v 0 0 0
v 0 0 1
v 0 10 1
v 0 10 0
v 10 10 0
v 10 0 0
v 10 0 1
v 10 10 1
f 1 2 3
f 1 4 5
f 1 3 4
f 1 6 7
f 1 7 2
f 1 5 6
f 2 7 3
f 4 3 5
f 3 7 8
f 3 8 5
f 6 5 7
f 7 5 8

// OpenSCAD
/* Warning, this is a very basic generator with a lot of approximation 
input data : [VQFN, LNC, 10x10x1.0mm, 72, , A, C04-25387A]
generated by com.zoubworld.electronics.cad.model3d.Basic
Date : Sun Feb 15 10:50:49 CET 2026
*/

//body
color("black")
translate([0,0,0])
cube([10.0,10.0,1.0], center=false);
